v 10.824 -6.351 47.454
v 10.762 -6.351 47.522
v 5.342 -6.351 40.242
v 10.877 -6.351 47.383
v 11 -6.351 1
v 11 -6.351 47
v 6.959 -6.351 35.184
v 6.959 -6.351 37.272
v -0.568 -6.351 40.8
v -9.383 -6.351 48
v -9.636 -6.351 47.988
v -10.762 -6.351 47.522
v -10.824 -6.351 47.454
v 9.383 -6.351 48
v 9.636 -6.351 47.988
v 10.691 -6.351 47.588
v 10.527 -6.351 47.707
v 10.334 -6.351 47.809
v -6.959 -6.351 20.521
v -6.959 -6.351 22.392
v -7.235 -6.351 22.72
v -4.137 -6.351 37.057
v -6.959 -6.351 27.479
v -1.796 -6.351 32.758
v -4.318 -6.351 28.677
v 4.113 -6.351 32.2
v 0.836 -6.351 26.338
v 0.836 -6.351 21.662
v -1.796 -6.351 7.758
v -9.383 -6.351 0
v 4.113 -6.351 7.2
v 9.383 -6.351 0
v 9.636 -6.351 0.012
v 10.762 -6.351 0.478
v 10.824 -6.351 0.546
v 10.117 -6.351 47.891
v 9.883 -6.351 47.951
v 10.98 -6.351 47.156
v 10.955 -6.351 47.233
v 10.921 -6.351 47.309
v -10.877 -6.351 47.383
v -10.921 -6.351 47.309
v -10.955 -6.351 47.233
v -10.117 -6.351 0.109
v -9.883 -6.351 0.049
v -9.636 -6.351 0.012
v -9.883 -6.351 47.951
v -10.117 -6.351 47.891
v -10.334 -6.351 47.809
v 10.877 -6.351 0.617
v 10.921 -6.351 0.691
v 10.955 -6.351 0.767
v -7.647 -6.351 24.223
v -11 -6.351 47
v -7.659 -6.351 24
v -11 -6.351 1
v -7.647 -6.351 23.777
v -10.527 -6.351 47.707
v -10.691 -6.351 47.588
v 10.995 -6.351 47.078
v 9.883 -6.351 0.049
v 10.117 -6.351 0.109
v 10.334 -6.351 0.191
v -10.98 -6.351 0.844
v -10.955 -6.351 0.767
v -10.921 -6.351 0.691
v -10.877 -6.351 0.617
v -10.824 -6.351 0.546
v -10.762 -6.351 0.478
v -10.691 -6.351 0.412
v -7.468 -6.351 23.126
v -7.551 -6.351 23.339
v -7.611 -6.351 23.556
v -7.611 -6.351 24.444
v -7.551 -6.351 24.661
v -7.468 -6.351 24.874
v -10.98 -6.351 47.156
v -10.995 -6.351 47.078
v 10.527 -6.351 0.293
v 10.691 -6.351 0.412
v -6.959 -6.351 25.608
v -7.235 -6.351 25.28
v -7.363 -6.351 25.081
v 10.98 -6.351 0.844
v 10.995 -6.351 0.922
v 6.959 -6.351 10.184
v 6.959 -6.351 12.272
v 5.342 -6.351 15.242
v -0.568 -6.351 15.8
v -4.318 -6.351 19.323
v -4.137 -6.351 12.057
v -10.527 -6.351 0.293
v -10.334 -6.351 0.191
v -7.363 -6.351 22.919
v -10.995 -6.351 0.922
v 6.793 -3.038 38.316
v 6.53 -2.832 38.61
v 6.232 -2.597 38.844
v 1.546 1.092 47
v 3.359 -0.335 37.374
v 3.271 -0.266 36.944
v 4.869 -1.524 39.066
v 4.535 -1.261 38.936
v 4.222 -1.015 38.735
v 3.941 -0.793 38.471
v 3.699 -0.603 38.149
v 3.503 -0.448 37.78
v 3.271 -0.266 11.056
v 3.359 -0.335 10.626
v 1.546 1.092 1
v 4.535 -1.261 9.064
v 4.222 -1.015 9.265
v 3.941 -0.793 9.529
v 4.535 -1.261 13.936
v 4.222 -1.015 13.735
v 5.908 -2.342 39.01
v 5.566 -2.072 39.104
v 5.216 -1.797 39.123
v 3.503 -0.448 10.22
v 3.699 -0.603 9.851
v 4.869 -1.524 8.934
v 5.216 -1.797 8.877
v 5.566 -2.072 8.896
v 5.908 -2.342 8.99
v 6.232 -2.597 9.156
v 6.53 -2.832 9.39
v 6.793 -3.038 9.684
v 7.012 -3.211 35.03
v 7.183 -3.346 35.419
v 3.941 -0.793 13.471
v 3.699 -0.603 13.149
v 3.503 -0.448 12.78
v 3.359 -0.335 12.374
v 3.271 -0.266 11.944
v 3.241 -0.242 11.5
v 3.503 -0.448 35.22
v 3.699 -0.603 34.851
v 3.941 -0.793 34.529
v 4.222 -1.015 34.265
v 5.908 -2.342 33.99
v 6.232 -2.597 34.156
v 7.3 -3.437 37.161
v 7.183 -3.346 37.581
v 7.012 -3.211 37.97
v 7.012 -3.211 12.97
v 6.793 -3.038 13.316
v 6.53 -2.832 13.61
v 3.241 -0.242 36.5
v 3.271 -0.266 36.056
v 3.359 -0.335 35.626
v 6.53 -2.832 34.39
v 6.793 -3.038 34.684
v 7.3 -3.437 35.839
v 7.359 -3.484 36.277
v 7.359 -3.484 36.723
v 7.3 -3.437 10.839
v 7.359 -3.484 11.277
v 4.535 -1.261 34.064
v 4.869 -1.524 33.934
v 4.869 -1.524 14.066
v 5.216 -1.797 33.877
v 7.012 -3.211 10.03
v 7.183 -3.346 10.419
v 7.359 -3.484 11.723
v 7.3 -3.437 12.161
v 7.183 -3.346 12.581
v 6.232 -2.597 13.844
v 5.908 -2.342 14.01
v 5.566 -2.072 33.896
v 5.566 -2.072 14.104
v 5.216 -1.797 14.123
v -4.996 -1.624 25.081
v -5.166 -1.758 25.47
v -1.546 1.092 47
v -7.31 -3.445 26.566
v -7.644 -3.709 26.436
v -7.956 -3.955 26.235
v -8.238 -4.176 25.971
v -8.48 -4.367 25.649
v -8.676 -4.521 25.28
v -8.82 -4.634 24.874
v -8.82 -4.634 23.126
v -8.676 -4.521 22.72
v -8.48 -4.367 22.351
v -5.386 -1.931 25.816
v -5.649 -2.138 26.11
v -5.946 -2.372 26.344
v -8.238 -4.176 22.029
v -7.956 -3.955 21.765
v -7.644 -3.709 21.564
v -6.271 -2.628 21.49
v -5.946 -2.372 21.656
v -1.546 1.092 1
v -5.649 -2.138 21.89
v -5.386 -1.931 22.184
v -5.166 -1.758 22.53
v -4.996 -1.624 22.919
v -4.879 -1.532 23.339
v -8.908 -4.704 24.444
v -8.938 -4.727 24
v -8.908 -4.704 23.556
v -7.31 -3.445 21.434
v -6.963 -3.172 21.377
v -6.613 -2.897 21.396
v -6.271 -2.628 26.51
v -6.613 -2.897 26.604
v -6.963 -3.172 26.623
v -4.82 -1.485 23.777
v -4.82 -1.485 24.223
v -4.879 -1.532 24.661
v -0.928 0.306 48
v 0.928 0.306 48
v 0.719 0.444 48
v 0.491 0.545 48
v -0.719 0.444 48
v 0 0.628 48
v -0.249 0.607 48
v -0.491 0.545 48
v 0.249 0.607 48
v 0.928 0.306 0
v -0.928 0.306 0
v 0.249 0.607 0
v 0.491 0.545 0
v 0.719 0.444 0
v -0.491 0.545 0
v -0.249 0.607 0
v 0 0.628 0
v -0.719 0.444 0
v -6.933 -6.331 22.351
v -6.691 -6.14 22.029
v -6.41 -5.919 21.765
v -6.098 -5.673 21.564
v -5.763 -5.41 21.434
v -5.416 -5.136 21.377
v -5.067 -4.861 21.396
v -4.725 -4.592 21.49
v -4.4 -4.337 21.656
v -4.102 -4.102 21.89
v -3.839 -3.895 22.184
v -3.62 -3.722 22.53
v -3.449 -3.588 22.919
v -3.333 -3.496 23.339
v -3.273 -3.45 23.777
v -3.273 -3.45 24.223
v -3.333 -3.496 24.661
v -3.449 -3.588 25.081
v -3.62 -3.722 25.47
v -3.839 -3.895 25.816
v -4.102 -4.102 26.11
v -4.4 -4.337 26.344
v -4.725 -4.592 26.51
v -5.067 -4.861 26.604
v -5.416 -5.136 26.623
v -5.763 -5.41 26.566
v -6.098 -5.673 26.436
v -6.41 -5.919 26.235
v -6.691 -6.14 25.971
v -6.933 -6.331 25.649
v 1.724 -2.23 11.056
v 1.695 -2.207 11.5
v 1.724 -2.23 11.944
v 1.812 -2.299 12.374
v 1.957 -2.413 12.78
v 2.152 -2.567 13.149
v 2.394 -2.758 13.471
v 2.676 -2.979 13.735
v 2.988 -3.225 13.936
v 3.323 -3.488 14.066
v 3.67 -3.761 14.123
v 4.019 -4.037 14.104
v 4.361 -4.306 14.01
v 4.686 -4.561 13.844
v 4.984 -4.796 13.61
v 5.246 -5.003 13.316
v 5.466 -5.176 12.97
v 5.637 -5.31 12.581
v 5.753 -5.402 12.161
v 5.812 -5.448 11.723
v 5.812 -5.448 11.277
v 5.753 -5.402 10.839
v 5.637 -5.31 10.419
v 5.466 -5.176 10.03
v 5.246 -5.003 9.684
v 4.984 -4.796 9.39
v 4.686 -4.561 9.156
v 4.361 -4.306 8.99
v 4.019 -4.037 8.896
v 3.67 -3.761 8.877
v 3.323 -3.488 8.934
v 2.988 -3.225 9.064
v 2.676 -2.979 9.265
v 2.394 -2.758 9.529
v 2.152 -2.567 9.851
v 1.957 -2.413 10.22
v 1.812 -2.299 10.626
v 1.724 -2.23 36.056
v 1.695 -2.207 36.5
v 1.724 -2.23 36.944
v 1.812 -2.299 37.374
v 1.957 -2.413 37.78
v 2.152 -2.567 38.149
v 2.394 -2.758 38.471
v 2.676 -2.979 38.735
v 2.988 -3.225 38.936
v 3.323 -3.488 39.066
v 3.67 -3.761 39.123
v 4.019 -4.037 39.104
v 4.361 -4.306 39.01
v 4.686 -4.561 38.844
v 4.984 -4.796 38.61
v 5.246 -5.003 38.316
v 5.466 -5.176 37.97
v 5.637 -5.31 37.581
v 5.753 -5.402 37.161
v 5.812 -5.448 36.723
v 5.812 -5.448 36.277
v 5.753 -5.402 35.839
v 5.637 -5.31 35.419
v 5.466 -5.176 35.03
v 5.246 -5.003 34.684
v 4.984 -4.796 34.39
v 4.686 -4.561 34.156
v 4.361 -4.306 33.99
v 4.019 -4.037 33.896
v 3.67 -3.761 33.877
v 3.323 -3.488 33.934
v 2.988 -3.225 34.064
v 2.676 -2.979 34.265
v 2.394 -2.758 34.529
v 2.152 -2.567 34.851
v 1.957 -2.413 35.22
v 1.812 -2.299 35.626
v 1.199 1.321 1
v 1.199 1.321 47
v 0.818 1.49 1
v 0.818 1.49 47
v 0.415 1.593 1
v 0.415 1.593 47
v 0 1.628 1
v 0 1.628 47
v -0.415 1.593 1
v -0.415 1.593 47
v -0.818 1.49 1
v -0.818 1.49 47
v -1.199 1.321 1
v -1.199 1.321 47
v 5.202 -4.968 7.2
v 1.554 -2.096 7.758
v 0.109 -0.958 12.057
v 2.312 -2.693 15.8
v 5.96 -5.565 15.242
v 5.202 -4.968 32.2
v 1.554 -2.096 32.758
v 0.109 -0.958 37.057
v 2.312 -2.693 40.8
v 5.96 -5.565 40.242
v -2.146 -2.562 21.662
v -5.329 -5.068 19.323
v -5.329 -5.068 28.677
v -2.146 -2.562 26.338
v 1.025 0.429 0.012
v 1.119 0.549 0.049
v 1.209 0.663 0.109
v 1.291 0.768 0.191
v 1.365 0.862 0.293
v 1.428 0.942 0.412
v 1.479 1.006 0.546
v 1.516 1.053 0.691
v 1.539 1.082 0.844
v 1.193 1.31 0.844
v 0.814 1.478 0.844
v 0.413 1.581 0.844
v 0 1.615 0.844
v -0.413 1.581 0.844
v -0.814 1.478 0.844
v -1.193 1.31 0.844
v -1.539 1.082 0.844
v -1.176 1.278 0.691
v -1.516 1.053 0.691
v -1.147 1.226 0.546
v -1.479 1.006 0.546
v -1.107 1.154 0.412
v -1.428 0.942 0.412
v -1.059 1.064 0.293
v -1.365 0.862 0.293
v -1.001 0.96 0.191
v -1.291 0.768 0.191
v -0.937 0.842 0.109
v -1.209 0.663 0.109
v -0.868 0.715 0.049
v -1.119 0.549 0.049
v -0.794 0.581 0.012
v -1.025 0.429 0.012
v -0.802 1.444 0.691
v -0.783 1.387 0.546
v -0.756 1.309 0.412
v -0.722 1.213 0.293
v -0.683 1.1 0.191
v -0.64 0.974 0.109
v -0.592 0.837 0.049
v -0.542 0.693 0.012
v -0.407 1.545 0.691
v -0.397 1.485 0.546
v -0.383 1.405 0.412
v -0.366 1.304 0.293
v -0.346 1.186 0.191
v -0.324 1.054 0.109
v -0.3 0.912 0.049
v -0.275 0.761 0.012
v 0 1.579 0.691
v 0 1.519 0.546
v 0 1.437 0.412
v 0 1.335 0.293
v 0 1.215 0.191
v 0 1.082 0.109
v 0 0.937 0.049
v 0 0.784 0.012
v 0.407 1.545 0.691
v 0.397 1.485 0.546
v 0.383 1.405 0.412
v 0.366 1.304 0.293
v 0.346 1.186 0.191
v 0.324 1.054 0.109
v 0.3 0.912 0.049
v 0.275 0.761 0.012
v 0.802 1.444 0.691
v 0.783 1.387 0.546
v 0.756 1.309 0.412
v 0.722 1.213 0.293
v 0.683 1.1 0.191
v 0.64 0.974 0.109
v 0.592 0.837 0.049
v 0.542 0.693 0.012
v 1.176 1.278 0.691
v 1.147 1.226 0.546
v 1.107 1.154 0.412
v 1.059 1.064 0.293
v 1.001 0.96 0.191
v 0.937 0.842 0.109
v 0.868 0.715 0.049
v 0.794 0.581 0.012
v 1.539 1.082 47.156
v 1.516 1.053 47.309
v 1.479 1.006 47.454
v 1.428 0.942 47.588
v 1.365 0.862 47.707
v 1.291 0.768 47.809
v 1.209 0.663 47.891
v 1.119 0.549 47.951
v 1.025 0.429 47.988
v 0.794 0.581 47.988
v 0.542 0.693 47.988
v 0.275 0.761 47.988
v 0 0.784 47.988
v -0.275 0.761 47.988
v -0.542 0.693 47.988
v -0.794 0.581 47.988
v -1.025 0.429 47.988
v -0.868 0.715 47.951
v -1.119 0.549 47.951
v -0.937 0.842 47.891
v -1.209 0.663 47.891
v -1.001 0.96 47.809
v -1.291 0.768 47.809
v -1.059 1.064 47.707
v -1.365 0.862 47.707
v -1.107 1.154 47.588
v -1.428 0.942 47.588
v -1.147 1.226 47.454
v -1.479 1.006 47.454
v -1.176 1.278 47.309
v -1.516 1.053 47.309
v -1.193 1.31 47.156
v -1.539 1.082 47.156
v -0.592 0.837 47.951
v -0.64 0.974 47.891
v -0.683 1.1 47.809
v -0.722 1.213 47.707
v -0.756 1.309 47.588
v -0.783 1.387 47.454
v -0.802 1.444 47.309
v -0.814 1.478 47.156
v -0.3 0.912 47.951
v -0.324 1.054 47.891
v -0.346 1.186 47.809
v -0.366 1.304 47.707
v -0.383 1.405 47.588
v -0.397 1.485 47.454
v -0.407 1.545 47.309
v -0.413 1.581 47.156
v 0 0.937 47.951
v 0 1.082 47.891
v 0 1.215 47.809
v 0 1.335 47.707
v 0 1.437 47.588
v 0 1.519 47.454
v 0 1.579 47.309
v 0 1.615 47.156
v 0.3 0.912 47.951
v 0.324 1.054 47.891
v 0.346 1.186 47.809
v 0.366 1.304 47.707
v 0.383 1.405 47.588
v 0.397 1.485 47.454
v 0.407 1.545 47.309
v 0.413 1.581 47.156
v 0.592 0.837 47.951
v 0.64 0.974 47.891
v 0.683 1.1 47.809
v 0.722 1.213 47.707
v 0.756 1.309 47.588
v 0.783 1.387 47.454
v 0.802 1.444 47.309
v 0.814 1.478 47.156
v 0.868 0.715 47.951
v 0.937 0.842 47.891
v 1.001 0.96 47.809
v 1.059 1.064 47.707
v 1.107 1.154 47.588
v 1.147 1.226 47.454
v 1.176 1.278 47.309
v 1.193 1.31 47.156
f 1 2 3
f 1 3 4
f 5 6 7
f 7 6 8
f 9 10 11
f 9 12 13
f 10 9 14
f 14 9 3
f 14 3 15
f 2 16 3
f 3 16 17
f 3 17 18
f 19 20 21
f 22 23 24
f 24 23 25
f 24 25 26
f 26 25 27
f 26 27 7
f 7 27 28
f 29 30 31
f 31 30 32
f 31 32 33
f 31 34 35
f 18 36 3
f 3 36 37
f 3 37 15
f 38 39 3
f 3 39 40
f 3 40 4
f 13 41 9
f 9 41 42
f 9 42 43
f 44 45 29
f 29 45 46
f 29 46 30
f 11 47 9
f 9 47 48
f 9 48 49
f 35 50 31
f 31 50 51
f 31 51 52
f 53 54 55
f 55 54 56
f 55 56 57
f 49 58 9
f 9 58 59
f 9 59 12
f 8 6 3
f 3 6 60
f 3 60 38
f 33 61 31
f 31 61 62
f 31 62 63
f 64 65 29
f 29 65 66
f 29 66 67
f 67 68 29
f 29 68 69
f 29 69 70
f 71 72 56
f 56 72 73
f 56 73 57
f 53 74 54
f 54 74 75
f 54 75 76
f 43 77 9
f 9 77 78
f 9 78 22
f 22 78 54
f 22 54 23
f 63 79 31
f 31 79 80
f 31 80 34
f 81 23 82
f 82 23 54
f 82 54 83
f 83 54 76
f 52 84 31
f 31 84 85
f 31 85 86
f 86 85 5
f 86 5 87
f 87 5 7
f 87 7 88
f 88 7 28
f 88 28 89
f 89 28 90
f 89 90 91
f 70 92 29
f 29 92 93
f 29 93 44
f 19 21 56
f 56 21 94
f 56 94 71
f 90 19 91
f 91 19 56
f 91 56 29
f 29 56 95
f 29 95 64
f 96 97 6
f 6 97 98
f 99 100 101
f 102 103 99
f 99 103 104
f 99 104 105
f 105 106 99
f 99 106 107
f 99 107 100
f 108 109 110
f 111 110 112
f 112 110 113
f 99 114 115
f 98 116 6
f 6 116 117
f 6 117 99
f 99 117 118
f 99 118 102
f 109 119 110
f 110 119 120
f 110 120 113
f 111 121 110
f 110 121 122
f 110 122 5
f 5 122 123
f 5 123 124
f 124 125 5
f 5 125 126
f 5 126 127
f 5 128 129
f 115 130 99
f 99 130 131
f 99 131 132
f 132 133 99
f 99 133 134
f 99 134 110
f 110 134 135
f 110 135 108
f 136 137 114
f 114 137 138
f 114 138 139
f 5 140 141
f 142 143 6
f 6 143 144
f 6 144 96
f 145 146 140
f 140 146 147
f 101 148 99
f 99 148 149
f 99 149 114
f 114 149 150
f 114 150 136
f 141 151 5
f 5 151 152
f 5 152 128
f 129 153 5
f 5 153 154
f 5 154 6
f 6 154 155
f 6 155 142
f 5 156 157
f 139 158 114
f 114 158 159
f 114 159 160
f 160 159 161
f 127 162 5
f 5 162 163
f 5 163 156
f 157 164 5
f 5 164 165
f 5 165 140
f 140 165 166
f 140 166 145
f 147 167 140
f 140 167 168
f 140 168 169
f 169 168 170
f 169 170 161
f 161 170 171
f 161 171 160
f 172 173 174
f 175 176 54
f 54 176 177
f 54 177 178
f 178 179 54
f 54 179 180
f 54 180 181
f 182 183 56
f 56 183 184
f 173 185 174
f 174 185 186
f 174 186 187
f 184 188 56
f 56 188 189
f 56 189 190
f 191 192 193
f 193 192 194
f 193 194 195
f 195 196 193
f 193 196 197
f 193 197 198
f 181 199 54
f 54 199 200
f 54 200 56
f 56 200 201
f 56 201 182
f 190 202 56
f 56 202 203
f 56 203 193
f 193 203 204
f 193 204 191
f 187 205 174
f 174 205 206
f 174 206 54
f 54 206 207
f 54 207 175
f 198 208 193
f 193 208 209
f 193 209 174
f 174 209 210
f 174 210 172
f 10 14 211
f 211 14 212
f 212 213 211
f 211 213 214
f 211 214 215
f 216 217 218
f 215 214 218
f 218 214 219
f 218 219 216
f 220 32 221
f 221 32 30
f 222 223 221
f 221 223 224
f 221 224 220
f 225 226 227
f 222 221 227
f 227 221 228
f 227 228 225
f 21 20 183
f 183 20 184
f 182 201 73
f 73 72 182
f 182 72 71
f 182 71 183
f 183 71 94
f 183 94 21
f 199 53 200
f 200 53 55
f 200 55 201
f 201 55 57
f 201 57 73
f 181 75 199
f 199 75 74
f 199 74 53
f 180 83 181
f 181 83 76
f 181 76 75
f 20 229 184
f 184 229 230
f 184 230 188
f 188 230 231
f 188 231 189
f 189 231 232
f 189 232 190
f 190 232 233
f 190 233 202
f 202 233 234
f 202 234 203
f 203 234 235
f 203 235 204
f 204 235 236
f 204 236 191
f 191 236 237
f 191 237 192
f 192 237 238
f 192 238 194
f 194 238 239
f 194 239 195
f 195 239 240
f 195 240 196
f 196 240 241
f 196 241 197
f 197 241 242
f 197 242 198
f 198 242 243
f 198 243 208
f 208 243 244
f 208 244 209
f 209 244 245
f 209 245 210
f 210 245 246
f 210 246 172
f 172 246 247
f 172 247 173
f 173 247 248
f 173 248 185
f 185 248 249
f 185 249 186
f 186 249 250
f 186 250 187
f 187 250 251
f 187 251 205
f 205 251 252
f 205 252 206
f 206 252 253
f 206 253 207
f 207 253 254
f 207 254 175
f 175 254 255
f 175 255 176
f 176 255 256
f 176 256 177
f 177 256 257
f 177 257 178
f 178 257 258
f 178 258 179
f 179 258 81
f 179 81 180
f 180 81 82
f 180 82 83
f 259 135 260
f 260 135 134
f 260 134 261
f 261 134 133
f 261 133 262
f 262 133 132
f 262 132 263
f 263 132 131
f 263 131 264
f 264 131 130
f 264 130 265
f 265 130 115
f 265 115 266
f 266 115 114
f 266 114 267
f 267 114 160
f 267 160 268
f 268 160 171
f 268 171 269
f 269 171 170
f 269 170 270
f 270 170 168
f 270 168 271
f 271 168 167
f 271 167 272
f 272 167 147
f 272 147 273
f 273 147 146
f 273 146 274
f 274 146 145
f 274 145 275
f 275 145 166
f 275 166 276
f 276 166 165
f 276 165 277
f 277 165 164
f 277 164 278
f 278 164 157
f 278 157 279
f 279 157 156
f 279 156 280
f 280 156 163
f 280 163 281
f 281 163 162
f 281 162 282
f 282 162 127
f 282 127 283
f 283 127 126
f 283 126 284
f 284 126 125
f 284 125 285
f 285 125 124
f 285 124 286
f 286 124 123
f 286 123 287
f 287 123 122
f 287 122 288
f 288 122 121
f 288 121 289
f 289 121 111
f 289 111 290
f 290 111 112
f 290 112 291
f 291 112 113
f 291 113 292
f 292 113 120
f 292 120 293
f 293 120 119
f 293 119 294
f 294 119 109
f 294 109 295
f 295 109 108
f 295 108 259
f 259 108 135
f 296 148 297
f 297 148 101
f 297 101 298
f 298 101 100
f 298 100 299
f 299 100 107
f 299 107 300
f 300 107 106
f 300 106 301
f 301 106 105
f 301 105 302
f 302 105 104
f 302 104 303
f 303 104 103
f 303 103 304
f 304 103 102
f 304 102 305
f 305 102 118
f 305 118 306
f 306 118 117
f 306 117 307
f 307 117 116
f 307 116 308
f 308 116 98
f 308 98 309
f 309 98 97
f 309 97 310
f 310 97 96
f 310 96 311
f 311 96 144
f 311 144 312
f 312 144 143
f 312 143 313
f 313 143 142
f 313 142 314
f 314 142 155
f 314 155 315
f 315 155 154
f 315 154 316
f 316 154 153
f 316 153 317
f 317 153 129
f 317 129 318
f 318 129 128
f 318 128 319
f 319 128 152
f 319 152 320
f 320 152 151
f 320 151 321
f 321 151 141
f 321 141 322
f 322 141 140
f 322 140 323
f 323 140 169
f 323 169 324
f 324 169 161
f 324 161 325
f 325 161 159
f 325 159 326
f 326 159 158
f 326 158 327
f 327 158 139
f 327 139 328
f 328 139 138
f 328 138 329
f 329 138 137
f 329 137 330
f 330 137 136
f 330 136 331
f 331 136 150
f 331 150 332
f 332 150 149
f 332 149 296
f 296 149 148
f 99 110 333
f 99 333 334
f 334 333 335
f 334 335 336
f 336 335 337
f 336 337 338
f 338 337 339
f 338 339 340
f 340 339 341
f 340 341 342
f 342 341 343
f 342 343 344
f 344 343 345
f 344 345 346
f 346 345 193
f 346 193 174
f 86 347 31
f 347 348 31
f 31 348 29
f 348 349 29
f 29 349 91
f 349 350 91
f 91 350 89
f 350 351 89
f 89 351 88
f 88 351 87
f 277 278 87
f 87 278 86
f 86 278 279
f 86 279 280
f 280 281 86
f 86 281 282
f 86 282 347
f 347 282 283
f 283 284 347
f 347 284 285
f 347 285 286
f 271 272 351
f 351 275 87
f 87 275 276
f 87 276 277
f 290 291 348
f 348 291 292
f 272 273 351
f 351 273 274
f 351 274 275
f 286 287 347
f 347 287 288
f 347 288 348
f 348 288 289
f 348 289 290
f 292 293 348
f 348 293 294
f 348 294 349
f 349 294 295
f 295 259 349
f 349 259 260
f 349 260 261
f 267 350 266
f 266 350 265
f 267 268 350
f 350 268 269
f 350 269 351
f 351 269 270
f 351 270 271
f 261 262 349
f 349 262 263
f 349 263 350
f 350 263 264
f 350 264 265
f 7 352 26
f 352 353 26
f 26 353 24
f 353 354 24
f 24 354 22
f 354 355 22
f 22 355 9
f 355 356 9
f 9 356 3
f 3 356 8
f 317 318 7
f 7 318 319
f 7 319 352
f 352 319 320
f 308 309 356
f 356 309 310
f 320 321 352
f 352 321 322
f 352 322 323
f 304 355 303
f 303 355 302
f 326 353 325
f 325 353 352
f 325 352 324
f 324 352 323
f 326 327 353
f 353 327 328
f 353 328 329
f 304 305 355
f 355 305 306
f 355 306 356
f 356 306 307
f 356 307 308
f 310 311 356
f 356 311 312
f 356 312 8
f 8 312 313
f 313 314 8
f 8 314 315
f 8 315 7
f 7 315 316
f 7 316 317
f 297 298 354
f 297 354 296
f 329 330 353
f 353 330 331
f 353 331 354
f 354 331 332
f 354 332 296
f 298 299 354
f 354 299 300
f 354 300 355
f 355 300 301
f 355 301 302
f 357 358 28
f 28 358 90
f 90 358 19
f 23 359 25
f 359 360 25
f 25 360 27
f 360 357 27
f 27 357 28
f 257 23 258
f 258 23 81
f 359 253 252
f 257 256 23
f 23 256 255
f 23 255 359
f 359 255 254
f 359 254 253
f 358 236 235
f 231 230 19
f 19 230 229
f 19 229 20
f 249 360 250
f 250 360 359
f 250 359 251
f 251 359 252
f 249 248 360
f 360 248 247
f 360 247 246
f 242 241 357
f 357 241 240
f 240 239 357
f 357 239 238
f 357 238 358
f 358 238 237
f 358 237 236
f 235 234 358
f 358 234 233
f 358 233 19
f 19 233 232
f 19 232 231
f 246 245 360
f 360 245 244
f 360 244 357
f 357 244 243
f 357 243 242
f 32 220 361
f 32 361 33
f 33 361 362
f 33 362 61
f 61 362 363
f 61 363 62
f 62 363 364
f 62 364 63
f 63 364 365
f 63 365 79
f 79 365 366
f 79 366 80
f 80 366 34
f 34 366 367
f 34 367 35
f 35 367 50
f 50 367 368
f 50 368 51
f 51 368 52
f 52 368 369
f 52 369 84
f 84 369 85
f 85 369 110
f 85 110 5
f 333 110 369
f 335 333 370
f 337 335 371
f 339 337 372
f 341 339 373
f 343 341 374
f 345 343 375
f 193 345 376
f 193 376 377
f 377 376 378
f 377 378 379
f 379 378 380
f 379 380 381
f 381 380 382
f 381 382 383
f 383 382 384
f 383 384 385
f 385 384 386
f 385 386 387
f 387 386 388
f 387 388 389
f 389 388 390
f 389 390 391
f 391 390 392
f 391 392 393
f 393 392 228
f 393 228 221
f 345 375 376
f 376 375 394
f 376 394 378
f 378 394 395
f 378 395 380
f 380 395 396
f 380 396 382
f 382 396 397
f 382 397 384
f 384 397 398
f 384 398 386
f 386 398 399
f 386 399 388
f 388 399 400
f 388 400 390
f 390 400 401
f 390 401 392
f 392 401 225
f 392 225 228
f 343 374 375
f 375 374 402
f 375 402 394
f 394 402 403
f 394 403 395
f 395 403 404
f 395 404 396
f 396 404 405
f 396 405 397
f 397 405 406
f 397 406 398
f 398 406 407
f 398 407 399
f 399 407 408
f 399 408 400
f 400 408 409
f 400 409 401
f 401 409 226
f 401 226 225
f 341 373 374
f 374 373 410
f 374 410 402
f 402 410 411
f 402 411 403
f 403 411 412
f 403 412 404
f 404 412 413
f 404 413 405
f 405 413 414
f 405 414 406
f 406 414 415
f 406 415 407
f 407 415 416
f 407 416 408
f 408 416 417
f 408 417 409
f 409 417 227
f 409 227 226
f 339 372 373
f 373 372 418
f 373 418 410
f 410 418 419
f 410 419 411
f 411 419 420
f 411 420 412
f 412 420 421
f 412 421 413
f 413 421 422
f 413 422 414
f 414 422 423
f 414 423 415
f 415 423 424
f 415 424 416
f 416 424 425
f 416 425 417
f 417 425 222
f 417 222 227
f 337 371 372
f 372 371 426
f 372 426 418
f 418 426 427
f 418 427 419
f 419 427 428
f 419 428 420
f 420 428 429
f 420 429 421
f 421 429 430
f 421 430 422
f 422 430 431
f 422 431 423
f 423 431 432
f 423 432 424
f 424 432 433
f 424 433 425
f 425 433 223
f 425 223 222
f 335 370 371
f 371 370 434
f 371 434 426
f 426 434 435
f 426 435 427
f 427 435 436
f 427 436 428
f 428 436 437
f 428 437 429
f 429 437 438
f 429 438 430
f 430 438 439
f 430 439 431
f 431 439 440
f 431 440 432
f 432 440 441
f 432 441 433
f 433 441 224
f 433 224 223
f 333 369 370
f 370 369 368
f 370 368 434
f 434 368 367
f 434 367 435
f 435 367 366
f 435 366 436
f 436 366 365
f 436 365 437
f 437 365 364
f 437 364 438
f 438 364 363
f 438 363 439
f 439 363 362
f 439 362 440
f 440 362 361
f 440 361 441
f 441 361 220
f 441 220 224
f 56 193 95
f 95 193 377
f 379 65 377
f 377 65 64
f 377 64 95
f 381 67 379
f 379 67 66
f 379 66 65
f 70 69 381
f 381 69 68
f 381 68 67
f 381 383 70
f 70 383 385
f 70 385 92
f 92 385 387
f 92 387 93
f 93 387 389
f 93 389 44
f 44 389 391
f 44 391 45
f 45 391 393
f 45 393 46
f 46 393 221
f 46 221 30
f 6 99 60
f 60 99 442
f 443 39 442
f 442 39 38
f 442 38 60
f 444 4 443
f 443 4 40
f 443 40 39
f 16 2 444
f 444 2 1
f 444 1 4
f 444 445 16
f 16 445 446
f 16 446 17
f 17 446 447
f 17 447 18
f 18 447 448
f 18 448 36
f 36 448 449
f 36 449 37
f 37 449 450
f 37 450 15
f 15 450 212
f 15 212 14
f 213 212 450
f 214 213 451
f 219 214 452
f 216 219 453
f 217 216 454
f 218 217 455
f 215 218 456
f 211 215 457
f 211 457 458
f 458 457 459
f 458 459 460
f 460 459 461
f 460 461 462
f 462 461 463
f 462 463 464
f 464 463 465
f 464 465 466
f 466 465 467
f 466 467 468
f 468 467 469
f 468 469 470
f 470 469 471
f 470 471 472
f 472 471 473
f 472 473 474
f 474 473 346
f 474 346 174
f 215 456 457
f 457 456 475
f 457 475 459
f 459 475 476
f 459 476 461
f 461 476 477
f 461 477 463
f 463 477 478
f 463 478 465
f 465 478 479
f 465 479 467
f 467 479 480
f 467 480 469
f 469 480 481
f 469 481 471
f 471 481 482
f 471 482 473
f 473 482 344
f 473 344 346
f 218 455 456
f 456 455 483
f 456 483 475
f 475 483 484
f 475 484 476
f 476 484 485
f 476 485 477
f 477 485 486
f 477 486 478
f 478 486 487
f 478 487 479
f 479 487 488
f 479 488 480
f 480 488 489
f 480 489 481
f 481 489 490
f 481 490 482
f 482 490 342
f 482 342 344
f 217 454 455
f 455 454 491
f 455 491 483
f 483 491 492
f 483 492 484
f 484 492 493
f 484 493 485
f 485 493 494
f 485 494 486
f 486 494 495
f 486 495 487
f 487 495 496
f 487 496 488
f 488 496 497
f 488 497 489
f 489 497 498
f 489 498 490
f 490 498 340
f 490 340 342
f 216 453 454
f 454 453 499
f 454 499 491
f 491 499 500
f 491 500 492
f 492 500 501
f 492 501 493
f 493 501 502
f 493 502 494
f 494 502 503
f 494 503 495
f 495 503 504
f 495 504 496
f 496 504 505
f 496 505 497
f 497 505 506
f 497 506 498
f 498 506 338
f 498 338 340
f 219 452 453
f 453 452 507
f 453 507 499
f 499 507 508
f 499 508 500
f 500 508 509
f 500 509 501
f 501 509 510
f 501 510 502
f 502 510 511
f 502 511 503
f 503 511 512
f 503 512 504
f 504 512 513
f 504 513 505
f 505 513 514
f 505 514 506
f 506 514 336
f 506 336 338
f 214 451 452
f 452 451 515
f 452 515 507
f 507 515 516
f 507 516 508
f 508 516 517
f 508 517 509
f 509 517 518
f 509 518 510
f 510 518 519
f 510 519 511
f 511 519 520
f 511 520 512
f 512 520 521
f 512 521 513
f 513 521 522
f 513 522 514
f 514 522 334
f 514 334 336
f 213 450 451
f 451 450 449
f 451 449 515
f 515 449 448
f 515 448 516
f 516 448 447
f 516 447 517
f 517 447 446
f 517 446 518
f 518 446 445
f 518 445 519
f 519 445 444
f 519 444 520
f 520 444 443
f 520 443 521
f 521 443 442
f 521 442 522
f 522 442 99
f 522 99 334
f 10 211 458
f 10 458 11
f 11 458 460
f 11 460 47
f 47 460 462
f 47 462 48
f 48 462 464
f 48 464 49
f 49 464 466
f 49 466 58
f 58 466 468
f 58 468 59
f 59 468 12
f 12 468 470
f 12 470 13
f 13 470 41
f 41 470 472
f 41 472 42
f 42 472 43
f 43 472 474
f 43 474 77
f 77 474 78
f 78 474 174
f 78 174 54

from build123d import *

# Parameters (mm, degrees)
BOSS_EXTRUDE3_DEPTH = 48
SKETCH4_R           = 2.625
CUT_EXTRUDE2_DEPTH  = 14.608970631
SKETCH5_R           = 2.625
CUT_EXTRUDE3_DEPTH  = 14.608970631
FILLET2_R           = 2.5
CUT_EXTRUDE4_DEPTH  = 12.5
CUT_EXTRUDE6_DEPTH  = 12.5
FILLET3_R           = 1
FILLET4_R           = 1


with BuildPart() as part:
    # Sketch2 → Boss-Extrude3 (new body)
    with BuildSketch(Plane.XY):
        Polygon((0, 2.309401077), (-11, -6.350852961), (11, -6.350852961), align=None)
    extrude(amount=BOSS_EXTRUDE3_DEPTH)

    # Sketch4 → Cut-Extrude2 (cut, through all)
    with BuildSketch(Plane(origin=(-1.12244898, 1.425701685, 0), x_dir=(0.785714286, 0.618589574, 0), z_dir=(-0.618589574, 0.785714286, 0))):
        with Locations((-7.321428571, -24)):
            Circle(SKETCH4_R)
    extrude(amount=-CUT_EXTRUDE2_DEPTH, mode=Mode.SUBTRACT)

    # Sketch5 → Cut-Extrude3 (cut, through all)
    with BuildSketch(Plane(origin=(1.12244898, 1.425701685, 0), x_dir=(0.785714286, -0.618589574, 0), z_dir=(0.618589574, 0.785714286, 0))):
        with Locations((5.321428571, -11.5)):
            Circle(SKETCH5_R)
        with Locations((5.321428571, -36.5)):
            Circle(SKETCH5_R)
    extrude(amount=-CUT_EXTRUDE3_DEPTH, mode=Mode.SUBTRACT)

    # Fillet2
    fillet2_edges = [part.edges().sort_by_distance(p)[0] for p in [
        (0, 2.309401077, 24),
    ]]
    fillet(fillet2_edges, radius=FILLET2_R)

    # Sketch6 → Cut-Extrude4 (cut)
    with BuildSketch(Plane(origin=(-8.156394632, -10.360012601, 0), x_dir=(0.785714286, -0.618589574, 0), z_dir=(0.618589574, 0.785714286, 0))):
        Polygon((7.160320357, -7.200177097), (2.517118598, -7.757561547), (0.678226812, -12.05738445), (3.482536786, -15.799822903), (8.125738545, -15.242438453), (9.96463033, -10.94261555), align=None)
        Polygon((7.160320357, -32.200177097), (2.517118598, -32.757561547), (0.678226812, -37.05738445), (3.482536786, -40.799822903), (8.125738545, -40.242438453), (9.96463033, -35.94261555), align=None)
    extrude(amount=CUT_EXTRUDE4_DEPTH, mode=Mode.SUBTRACT)

    # Sketch7 → Cut-Extrude6 (cut)
    with BuildSketch(Plane(origin=(8.156394632, -10.360012601, 0), x_dir=(0.785714286, 0.618589574, 0), z_dir=(-0.618589574, 0.785714286, 0))):
        Polygon((-7.321428571, -19.32346282), (-11.371428571, -21.66173141), (-11.371428571, -26.33826859), (-7.321428571, -28.67653718), (-3.271428571, -26.33826859), (-3.271428571, -21.66173141), align=None)
    extrude(amount=CUT_EXTRUDE6_DEPTH, mode=Mode.SUBTRACT)

    # Fillet3
    fillet3_edges = [part.edges().sort_by_distance(p)[0] for p in [
        (-6.273236968, -2.629492176, 0),
        (0, 1.627582895, 0),
        (6.273236968, -2.629492176, 0),
    ]]
    fillet(fillet3_edges, radius=FILLET3_R)

    # Fillet4
    fillet4_edges = [part.edges().sort_by_distance(p)[0] for p in [
        (-6.273236968, -2.629492176, 48),
        (0, 1.627582895, 48),
        (6.273236968, -2.629492176, 48),
    ]]
    fillet(fillet4_edges, radius=FILLET4_R)


solid = part.part
